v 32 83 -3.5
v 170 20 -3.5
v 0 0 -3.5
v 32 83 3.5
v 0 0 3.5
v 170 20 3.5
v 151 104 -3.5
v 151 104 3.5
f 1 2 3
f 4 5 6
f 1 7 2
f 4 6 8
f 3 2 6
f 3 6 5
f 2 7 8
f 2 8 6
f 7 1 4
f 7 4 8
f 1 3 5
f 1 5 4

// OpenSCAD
polyhedron(points=[[32.0, 83.0, -3.5], [0.0, 0.0, -3.5], [170.0, 20.0, -3.5], [32.0, 83.0, 3.5], [0.0, 0.0, 3.5], [170.0, 20.0, 3.5], [151.0, 104.0, -3.5], [151.0, 104.0, 3.5]], faces=[[0, 2, 1], [3, 4, 5], [0, 6, 2], [3, 5, 7], [1, 2, 5], [1, 5, 4], [2, 6, 7], [2, 7, 5], [6, 0, 3], [6, 3, 7], [0, 1, 4], [0, 4, 3]], convexity=20);
